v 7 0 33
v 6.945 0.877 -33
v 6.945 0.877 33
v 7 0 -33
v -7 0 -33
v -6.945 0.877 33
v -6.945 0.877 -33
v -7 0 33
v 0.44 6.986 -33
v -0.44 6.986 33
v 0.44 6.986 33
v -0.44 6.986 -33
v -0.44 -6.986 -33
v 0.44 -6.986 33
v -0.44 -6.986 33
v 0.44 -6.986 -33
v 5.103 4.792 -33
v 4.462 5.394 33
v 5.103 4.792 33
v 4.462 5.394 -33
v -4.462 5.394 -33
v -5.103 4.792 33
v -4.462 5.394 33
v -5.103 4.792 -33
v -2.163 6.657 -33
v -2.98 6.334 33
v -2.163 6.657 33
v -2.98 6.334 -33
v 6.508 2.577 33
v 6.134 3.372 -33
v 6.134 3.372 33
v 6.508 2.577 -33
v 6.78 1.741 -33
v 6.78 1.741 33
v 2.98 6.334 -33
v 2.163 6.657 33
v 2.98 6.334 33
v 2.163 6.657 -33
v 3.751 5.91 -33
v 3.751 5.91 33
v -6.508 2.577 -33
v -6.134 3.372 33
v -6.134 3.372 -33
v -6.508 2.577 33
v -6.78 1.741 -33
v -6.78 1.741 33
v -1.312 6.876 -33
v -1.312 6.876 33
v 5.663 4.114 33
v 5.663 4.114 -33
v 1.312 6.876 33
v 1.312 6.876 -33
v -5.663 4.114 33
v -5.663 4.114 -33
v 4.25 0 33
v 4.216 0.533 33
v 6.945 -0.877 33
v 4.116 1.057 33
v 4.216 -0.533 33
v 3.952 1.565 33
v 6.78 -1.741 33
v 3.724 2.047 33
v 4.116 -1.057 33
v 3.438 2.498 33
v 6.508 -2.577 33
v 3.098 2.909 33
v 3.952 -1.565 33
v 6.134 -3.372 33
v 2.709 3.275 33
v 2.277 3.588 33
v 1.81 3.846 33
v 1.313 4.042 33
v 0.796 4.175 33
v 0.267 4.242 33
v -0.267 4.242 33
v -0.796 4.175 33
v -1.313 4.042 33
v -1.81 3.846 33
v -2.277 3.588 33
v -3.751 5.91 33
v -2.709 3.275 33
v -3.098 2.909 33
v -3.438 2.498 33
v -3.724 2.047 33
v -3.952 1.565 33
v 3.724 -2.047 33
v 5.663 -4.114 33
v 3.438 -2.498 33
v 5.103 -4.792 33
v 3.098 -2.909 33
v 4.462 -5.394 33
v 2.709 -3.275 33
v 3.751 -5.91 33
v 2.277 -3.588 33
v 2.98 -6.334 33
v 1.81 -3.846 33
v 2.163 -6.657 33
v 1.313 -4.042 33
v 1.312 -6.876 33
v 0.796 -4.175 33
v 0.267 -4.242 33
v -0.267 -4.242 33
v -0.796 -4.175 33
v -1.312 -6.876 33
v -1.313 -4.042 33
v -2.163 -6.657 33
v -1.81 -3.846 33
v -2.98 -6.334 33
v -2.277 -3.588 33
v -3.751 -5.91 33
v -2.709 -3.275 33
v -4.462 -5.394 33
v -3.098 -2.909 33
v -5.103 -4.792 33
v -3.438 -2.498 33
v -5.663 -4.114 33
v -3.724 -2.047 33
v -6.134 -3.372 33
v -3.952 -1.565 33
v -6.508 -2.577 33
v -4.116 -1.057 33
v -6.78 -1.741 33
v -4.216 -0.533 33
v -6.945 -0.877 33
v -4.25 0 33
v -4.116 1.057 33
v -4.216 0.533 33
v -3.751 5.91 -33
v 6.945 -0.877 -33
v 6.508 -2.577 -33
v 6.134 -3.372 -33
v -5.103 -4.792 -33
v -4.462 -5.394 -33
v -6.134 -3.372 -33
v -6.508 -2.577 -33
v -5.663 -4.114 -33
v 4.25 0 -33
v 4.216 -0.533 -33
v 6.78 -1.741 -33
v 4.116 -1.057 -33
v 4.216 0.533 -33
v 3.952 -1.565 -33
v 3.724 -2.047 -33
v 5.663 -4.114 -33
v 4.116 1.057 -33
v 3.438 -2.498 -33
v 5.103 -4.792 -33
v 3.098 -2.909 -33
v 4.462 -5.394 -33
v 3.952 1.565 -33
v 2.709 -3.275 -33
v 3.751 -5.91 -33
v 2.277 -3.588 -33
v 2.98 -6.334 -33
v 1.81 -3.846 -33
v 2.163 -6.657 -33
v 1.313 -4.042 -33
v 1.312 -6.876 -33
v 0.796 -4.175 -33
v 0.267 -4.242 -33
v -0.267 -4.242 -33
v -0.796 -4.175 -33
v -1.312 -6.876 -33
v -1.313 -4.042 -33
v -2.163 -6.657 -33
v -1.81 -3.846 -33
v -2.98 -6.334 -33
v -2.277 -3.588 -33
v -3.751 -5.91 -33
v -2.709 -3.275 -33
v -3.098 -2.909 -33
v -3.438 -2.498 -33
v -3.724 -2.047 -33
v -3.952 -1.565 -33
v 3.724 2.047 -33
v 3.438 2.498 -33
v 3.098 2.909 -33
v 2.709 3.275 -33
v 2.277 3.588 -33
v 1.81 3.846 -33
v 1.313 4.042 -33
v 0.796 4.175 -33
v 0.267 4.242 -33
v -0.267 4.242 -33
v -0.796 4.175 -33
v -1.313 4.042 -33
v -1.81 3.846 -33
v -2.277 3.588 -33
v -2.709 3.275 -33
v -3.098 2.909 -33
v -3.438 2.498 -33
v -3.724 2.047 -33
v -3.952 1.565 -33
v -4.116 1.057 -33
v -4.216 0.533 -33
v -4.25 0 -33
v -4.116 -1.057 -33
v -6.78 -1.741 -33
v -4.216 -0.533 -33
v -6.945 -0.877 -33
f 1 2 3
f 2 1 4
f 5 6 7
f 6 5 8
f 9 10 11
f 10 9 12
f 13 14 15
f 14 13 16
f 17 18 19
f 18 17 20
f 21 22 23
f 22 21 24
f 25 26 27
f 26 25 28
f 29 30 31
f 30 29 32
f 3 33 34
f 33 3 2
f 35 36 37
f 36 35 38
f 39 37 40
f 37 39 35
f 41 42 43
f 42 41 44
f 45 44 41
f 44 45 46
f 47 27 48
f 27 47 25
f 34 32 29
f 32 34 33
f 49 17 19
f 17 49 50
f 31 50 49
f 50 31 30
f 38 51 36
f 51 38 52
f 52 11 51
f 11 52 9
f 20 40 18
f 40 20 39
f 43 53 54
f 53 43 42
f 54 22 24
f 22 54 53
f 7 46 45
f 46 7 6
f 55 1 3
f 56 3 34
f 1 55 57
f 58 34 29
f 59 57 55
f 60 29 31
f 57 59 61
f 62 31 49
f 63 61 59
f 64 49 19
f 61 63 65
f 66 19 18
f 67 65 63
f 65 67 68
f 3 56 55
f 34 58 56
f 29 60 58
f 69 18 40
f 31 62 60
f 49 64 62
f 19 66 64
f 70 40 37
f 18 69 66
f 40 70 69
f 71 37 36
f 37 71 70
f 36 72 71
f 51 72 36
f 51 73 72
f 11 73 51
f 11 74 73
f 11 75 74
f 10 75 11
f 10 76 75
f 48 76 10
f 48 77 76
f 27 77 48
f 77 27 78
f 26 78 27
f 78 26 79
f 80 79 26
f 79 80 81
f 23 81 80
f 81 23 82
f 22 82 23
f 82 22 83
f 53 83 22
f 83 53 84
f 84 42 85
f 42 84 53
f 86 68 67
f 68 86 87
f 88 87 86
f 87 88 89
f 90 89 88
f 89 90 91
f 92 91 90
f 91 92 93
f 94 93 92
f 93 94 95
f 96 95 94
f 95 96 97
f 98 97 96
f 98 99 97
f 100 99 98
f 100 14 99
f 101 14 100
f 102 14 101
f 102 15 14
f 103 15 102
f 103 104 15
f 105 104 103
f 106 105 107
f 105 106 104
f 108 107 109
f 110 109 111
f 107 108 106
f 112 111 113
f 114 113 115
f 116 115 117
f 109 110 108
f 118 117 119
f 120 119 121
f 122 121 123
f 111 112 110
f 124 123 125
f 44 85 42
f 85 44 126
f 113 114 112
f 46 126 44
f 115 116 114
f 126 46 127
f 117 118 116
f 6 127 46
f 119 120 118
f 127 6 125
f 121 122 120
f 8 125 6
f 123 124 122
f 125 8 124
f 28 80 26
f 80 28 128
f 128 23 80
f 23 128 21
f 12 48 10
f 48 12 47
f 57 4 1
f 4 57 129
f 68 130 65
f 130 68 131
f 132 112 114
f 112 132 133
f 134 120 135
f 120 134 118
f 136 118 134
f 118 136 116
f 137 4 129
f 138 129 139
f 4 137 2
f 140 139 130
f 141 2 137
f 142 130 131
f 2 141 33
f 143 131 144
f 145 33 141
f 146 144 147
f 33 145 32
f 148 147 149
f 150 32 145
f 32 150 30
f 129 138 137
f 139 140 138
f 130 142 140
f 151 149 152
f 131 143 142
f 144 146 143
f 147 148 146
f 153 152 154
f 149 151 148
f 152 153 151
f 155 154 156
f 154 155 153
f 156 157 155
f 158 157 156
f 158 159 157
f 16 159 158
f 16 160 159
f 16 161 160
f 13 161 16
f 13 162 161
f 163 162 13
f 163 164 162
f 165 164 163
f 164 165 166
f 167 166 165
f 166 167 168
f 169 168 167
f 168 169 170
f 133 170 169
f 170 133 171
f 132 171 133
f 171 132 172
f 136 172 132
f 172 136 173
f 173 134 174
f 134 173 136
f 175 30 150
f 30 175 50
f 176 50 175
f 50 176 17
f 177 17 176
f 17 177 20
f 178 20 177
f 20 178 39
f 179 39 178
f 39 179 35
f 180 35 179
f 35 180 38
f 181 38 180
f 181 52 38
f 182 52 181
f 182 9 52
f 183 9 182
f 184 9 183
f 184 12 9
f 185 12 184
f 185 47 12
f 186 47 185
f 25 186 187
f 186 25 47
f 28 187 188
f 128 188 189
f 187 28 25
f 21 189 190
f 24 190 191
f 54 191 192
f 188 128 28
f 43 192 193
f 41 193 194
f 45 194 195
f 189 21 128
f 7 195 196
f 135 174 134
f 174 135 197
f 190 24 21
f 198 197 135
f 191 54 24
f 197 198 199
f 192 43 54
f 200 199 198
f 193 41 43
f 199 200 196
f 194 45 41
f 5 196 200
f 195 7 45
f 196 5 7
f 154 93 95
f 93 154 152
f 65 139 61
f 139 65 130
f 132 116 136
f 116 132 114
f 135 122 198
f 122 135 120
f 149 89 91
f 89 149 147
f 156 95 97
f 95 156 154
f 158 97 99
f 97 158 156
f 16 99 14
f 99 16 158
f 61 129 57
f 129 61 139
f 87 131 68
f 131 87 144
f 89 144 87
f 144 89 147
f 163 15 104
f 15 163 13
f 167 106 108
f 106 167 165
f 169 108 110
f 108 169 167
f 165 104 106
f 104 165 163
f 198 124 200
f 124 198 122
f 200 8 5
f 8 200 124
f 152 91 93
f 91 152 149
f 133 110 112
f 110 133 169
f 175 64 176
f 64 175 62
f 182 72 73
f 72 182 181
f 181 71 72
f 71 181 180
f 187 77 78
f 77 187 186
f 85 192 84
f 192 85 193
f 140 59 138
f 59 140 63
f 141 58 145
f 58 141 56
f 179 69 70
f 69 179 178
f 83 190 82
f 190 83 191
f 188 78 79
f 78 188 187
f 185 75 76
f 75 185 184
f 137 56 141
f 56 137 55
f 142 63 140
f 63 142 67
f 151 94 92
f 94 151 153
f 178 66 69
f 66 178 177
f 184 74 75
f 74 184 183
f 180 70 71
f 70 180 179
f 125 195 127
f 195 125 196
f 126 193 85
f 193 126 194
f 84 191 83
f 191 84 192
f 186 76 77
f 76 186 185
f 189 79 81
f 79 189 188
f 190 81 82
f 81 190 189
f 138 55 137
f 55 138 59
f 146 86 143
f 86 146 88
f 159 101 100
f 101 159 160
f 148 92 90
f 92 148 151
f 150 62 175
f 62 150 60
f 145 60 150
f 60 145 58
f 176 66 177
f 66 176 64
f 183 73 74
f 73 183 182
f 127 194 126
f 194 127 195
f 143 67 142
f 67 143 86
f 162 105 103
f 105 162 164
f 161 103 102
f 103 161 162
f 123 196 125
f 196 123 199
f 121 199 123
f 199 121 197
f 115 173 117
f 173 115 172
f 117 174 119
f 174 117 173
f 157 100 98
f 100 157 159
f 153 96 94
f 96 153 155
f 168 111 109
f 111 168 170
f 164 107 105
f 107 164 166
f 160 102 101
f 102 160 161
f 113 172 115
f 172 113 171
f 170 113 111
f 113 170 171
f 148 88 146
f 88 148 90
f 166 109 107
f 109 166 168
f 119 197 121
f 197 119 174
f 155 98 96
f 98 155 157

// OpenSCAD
$fn = 50;


difference() {
	union() {
		translate(v = [0, 0, -33.0000000000]) {
			cylinder(h = 66, r = 7.0000000000);
		}
	}
	union() {
		translate(v = [0, 0, -100.0000000000]) {
			cylinder(h = 200, r = 4.2500000000);
		}
	}
}
